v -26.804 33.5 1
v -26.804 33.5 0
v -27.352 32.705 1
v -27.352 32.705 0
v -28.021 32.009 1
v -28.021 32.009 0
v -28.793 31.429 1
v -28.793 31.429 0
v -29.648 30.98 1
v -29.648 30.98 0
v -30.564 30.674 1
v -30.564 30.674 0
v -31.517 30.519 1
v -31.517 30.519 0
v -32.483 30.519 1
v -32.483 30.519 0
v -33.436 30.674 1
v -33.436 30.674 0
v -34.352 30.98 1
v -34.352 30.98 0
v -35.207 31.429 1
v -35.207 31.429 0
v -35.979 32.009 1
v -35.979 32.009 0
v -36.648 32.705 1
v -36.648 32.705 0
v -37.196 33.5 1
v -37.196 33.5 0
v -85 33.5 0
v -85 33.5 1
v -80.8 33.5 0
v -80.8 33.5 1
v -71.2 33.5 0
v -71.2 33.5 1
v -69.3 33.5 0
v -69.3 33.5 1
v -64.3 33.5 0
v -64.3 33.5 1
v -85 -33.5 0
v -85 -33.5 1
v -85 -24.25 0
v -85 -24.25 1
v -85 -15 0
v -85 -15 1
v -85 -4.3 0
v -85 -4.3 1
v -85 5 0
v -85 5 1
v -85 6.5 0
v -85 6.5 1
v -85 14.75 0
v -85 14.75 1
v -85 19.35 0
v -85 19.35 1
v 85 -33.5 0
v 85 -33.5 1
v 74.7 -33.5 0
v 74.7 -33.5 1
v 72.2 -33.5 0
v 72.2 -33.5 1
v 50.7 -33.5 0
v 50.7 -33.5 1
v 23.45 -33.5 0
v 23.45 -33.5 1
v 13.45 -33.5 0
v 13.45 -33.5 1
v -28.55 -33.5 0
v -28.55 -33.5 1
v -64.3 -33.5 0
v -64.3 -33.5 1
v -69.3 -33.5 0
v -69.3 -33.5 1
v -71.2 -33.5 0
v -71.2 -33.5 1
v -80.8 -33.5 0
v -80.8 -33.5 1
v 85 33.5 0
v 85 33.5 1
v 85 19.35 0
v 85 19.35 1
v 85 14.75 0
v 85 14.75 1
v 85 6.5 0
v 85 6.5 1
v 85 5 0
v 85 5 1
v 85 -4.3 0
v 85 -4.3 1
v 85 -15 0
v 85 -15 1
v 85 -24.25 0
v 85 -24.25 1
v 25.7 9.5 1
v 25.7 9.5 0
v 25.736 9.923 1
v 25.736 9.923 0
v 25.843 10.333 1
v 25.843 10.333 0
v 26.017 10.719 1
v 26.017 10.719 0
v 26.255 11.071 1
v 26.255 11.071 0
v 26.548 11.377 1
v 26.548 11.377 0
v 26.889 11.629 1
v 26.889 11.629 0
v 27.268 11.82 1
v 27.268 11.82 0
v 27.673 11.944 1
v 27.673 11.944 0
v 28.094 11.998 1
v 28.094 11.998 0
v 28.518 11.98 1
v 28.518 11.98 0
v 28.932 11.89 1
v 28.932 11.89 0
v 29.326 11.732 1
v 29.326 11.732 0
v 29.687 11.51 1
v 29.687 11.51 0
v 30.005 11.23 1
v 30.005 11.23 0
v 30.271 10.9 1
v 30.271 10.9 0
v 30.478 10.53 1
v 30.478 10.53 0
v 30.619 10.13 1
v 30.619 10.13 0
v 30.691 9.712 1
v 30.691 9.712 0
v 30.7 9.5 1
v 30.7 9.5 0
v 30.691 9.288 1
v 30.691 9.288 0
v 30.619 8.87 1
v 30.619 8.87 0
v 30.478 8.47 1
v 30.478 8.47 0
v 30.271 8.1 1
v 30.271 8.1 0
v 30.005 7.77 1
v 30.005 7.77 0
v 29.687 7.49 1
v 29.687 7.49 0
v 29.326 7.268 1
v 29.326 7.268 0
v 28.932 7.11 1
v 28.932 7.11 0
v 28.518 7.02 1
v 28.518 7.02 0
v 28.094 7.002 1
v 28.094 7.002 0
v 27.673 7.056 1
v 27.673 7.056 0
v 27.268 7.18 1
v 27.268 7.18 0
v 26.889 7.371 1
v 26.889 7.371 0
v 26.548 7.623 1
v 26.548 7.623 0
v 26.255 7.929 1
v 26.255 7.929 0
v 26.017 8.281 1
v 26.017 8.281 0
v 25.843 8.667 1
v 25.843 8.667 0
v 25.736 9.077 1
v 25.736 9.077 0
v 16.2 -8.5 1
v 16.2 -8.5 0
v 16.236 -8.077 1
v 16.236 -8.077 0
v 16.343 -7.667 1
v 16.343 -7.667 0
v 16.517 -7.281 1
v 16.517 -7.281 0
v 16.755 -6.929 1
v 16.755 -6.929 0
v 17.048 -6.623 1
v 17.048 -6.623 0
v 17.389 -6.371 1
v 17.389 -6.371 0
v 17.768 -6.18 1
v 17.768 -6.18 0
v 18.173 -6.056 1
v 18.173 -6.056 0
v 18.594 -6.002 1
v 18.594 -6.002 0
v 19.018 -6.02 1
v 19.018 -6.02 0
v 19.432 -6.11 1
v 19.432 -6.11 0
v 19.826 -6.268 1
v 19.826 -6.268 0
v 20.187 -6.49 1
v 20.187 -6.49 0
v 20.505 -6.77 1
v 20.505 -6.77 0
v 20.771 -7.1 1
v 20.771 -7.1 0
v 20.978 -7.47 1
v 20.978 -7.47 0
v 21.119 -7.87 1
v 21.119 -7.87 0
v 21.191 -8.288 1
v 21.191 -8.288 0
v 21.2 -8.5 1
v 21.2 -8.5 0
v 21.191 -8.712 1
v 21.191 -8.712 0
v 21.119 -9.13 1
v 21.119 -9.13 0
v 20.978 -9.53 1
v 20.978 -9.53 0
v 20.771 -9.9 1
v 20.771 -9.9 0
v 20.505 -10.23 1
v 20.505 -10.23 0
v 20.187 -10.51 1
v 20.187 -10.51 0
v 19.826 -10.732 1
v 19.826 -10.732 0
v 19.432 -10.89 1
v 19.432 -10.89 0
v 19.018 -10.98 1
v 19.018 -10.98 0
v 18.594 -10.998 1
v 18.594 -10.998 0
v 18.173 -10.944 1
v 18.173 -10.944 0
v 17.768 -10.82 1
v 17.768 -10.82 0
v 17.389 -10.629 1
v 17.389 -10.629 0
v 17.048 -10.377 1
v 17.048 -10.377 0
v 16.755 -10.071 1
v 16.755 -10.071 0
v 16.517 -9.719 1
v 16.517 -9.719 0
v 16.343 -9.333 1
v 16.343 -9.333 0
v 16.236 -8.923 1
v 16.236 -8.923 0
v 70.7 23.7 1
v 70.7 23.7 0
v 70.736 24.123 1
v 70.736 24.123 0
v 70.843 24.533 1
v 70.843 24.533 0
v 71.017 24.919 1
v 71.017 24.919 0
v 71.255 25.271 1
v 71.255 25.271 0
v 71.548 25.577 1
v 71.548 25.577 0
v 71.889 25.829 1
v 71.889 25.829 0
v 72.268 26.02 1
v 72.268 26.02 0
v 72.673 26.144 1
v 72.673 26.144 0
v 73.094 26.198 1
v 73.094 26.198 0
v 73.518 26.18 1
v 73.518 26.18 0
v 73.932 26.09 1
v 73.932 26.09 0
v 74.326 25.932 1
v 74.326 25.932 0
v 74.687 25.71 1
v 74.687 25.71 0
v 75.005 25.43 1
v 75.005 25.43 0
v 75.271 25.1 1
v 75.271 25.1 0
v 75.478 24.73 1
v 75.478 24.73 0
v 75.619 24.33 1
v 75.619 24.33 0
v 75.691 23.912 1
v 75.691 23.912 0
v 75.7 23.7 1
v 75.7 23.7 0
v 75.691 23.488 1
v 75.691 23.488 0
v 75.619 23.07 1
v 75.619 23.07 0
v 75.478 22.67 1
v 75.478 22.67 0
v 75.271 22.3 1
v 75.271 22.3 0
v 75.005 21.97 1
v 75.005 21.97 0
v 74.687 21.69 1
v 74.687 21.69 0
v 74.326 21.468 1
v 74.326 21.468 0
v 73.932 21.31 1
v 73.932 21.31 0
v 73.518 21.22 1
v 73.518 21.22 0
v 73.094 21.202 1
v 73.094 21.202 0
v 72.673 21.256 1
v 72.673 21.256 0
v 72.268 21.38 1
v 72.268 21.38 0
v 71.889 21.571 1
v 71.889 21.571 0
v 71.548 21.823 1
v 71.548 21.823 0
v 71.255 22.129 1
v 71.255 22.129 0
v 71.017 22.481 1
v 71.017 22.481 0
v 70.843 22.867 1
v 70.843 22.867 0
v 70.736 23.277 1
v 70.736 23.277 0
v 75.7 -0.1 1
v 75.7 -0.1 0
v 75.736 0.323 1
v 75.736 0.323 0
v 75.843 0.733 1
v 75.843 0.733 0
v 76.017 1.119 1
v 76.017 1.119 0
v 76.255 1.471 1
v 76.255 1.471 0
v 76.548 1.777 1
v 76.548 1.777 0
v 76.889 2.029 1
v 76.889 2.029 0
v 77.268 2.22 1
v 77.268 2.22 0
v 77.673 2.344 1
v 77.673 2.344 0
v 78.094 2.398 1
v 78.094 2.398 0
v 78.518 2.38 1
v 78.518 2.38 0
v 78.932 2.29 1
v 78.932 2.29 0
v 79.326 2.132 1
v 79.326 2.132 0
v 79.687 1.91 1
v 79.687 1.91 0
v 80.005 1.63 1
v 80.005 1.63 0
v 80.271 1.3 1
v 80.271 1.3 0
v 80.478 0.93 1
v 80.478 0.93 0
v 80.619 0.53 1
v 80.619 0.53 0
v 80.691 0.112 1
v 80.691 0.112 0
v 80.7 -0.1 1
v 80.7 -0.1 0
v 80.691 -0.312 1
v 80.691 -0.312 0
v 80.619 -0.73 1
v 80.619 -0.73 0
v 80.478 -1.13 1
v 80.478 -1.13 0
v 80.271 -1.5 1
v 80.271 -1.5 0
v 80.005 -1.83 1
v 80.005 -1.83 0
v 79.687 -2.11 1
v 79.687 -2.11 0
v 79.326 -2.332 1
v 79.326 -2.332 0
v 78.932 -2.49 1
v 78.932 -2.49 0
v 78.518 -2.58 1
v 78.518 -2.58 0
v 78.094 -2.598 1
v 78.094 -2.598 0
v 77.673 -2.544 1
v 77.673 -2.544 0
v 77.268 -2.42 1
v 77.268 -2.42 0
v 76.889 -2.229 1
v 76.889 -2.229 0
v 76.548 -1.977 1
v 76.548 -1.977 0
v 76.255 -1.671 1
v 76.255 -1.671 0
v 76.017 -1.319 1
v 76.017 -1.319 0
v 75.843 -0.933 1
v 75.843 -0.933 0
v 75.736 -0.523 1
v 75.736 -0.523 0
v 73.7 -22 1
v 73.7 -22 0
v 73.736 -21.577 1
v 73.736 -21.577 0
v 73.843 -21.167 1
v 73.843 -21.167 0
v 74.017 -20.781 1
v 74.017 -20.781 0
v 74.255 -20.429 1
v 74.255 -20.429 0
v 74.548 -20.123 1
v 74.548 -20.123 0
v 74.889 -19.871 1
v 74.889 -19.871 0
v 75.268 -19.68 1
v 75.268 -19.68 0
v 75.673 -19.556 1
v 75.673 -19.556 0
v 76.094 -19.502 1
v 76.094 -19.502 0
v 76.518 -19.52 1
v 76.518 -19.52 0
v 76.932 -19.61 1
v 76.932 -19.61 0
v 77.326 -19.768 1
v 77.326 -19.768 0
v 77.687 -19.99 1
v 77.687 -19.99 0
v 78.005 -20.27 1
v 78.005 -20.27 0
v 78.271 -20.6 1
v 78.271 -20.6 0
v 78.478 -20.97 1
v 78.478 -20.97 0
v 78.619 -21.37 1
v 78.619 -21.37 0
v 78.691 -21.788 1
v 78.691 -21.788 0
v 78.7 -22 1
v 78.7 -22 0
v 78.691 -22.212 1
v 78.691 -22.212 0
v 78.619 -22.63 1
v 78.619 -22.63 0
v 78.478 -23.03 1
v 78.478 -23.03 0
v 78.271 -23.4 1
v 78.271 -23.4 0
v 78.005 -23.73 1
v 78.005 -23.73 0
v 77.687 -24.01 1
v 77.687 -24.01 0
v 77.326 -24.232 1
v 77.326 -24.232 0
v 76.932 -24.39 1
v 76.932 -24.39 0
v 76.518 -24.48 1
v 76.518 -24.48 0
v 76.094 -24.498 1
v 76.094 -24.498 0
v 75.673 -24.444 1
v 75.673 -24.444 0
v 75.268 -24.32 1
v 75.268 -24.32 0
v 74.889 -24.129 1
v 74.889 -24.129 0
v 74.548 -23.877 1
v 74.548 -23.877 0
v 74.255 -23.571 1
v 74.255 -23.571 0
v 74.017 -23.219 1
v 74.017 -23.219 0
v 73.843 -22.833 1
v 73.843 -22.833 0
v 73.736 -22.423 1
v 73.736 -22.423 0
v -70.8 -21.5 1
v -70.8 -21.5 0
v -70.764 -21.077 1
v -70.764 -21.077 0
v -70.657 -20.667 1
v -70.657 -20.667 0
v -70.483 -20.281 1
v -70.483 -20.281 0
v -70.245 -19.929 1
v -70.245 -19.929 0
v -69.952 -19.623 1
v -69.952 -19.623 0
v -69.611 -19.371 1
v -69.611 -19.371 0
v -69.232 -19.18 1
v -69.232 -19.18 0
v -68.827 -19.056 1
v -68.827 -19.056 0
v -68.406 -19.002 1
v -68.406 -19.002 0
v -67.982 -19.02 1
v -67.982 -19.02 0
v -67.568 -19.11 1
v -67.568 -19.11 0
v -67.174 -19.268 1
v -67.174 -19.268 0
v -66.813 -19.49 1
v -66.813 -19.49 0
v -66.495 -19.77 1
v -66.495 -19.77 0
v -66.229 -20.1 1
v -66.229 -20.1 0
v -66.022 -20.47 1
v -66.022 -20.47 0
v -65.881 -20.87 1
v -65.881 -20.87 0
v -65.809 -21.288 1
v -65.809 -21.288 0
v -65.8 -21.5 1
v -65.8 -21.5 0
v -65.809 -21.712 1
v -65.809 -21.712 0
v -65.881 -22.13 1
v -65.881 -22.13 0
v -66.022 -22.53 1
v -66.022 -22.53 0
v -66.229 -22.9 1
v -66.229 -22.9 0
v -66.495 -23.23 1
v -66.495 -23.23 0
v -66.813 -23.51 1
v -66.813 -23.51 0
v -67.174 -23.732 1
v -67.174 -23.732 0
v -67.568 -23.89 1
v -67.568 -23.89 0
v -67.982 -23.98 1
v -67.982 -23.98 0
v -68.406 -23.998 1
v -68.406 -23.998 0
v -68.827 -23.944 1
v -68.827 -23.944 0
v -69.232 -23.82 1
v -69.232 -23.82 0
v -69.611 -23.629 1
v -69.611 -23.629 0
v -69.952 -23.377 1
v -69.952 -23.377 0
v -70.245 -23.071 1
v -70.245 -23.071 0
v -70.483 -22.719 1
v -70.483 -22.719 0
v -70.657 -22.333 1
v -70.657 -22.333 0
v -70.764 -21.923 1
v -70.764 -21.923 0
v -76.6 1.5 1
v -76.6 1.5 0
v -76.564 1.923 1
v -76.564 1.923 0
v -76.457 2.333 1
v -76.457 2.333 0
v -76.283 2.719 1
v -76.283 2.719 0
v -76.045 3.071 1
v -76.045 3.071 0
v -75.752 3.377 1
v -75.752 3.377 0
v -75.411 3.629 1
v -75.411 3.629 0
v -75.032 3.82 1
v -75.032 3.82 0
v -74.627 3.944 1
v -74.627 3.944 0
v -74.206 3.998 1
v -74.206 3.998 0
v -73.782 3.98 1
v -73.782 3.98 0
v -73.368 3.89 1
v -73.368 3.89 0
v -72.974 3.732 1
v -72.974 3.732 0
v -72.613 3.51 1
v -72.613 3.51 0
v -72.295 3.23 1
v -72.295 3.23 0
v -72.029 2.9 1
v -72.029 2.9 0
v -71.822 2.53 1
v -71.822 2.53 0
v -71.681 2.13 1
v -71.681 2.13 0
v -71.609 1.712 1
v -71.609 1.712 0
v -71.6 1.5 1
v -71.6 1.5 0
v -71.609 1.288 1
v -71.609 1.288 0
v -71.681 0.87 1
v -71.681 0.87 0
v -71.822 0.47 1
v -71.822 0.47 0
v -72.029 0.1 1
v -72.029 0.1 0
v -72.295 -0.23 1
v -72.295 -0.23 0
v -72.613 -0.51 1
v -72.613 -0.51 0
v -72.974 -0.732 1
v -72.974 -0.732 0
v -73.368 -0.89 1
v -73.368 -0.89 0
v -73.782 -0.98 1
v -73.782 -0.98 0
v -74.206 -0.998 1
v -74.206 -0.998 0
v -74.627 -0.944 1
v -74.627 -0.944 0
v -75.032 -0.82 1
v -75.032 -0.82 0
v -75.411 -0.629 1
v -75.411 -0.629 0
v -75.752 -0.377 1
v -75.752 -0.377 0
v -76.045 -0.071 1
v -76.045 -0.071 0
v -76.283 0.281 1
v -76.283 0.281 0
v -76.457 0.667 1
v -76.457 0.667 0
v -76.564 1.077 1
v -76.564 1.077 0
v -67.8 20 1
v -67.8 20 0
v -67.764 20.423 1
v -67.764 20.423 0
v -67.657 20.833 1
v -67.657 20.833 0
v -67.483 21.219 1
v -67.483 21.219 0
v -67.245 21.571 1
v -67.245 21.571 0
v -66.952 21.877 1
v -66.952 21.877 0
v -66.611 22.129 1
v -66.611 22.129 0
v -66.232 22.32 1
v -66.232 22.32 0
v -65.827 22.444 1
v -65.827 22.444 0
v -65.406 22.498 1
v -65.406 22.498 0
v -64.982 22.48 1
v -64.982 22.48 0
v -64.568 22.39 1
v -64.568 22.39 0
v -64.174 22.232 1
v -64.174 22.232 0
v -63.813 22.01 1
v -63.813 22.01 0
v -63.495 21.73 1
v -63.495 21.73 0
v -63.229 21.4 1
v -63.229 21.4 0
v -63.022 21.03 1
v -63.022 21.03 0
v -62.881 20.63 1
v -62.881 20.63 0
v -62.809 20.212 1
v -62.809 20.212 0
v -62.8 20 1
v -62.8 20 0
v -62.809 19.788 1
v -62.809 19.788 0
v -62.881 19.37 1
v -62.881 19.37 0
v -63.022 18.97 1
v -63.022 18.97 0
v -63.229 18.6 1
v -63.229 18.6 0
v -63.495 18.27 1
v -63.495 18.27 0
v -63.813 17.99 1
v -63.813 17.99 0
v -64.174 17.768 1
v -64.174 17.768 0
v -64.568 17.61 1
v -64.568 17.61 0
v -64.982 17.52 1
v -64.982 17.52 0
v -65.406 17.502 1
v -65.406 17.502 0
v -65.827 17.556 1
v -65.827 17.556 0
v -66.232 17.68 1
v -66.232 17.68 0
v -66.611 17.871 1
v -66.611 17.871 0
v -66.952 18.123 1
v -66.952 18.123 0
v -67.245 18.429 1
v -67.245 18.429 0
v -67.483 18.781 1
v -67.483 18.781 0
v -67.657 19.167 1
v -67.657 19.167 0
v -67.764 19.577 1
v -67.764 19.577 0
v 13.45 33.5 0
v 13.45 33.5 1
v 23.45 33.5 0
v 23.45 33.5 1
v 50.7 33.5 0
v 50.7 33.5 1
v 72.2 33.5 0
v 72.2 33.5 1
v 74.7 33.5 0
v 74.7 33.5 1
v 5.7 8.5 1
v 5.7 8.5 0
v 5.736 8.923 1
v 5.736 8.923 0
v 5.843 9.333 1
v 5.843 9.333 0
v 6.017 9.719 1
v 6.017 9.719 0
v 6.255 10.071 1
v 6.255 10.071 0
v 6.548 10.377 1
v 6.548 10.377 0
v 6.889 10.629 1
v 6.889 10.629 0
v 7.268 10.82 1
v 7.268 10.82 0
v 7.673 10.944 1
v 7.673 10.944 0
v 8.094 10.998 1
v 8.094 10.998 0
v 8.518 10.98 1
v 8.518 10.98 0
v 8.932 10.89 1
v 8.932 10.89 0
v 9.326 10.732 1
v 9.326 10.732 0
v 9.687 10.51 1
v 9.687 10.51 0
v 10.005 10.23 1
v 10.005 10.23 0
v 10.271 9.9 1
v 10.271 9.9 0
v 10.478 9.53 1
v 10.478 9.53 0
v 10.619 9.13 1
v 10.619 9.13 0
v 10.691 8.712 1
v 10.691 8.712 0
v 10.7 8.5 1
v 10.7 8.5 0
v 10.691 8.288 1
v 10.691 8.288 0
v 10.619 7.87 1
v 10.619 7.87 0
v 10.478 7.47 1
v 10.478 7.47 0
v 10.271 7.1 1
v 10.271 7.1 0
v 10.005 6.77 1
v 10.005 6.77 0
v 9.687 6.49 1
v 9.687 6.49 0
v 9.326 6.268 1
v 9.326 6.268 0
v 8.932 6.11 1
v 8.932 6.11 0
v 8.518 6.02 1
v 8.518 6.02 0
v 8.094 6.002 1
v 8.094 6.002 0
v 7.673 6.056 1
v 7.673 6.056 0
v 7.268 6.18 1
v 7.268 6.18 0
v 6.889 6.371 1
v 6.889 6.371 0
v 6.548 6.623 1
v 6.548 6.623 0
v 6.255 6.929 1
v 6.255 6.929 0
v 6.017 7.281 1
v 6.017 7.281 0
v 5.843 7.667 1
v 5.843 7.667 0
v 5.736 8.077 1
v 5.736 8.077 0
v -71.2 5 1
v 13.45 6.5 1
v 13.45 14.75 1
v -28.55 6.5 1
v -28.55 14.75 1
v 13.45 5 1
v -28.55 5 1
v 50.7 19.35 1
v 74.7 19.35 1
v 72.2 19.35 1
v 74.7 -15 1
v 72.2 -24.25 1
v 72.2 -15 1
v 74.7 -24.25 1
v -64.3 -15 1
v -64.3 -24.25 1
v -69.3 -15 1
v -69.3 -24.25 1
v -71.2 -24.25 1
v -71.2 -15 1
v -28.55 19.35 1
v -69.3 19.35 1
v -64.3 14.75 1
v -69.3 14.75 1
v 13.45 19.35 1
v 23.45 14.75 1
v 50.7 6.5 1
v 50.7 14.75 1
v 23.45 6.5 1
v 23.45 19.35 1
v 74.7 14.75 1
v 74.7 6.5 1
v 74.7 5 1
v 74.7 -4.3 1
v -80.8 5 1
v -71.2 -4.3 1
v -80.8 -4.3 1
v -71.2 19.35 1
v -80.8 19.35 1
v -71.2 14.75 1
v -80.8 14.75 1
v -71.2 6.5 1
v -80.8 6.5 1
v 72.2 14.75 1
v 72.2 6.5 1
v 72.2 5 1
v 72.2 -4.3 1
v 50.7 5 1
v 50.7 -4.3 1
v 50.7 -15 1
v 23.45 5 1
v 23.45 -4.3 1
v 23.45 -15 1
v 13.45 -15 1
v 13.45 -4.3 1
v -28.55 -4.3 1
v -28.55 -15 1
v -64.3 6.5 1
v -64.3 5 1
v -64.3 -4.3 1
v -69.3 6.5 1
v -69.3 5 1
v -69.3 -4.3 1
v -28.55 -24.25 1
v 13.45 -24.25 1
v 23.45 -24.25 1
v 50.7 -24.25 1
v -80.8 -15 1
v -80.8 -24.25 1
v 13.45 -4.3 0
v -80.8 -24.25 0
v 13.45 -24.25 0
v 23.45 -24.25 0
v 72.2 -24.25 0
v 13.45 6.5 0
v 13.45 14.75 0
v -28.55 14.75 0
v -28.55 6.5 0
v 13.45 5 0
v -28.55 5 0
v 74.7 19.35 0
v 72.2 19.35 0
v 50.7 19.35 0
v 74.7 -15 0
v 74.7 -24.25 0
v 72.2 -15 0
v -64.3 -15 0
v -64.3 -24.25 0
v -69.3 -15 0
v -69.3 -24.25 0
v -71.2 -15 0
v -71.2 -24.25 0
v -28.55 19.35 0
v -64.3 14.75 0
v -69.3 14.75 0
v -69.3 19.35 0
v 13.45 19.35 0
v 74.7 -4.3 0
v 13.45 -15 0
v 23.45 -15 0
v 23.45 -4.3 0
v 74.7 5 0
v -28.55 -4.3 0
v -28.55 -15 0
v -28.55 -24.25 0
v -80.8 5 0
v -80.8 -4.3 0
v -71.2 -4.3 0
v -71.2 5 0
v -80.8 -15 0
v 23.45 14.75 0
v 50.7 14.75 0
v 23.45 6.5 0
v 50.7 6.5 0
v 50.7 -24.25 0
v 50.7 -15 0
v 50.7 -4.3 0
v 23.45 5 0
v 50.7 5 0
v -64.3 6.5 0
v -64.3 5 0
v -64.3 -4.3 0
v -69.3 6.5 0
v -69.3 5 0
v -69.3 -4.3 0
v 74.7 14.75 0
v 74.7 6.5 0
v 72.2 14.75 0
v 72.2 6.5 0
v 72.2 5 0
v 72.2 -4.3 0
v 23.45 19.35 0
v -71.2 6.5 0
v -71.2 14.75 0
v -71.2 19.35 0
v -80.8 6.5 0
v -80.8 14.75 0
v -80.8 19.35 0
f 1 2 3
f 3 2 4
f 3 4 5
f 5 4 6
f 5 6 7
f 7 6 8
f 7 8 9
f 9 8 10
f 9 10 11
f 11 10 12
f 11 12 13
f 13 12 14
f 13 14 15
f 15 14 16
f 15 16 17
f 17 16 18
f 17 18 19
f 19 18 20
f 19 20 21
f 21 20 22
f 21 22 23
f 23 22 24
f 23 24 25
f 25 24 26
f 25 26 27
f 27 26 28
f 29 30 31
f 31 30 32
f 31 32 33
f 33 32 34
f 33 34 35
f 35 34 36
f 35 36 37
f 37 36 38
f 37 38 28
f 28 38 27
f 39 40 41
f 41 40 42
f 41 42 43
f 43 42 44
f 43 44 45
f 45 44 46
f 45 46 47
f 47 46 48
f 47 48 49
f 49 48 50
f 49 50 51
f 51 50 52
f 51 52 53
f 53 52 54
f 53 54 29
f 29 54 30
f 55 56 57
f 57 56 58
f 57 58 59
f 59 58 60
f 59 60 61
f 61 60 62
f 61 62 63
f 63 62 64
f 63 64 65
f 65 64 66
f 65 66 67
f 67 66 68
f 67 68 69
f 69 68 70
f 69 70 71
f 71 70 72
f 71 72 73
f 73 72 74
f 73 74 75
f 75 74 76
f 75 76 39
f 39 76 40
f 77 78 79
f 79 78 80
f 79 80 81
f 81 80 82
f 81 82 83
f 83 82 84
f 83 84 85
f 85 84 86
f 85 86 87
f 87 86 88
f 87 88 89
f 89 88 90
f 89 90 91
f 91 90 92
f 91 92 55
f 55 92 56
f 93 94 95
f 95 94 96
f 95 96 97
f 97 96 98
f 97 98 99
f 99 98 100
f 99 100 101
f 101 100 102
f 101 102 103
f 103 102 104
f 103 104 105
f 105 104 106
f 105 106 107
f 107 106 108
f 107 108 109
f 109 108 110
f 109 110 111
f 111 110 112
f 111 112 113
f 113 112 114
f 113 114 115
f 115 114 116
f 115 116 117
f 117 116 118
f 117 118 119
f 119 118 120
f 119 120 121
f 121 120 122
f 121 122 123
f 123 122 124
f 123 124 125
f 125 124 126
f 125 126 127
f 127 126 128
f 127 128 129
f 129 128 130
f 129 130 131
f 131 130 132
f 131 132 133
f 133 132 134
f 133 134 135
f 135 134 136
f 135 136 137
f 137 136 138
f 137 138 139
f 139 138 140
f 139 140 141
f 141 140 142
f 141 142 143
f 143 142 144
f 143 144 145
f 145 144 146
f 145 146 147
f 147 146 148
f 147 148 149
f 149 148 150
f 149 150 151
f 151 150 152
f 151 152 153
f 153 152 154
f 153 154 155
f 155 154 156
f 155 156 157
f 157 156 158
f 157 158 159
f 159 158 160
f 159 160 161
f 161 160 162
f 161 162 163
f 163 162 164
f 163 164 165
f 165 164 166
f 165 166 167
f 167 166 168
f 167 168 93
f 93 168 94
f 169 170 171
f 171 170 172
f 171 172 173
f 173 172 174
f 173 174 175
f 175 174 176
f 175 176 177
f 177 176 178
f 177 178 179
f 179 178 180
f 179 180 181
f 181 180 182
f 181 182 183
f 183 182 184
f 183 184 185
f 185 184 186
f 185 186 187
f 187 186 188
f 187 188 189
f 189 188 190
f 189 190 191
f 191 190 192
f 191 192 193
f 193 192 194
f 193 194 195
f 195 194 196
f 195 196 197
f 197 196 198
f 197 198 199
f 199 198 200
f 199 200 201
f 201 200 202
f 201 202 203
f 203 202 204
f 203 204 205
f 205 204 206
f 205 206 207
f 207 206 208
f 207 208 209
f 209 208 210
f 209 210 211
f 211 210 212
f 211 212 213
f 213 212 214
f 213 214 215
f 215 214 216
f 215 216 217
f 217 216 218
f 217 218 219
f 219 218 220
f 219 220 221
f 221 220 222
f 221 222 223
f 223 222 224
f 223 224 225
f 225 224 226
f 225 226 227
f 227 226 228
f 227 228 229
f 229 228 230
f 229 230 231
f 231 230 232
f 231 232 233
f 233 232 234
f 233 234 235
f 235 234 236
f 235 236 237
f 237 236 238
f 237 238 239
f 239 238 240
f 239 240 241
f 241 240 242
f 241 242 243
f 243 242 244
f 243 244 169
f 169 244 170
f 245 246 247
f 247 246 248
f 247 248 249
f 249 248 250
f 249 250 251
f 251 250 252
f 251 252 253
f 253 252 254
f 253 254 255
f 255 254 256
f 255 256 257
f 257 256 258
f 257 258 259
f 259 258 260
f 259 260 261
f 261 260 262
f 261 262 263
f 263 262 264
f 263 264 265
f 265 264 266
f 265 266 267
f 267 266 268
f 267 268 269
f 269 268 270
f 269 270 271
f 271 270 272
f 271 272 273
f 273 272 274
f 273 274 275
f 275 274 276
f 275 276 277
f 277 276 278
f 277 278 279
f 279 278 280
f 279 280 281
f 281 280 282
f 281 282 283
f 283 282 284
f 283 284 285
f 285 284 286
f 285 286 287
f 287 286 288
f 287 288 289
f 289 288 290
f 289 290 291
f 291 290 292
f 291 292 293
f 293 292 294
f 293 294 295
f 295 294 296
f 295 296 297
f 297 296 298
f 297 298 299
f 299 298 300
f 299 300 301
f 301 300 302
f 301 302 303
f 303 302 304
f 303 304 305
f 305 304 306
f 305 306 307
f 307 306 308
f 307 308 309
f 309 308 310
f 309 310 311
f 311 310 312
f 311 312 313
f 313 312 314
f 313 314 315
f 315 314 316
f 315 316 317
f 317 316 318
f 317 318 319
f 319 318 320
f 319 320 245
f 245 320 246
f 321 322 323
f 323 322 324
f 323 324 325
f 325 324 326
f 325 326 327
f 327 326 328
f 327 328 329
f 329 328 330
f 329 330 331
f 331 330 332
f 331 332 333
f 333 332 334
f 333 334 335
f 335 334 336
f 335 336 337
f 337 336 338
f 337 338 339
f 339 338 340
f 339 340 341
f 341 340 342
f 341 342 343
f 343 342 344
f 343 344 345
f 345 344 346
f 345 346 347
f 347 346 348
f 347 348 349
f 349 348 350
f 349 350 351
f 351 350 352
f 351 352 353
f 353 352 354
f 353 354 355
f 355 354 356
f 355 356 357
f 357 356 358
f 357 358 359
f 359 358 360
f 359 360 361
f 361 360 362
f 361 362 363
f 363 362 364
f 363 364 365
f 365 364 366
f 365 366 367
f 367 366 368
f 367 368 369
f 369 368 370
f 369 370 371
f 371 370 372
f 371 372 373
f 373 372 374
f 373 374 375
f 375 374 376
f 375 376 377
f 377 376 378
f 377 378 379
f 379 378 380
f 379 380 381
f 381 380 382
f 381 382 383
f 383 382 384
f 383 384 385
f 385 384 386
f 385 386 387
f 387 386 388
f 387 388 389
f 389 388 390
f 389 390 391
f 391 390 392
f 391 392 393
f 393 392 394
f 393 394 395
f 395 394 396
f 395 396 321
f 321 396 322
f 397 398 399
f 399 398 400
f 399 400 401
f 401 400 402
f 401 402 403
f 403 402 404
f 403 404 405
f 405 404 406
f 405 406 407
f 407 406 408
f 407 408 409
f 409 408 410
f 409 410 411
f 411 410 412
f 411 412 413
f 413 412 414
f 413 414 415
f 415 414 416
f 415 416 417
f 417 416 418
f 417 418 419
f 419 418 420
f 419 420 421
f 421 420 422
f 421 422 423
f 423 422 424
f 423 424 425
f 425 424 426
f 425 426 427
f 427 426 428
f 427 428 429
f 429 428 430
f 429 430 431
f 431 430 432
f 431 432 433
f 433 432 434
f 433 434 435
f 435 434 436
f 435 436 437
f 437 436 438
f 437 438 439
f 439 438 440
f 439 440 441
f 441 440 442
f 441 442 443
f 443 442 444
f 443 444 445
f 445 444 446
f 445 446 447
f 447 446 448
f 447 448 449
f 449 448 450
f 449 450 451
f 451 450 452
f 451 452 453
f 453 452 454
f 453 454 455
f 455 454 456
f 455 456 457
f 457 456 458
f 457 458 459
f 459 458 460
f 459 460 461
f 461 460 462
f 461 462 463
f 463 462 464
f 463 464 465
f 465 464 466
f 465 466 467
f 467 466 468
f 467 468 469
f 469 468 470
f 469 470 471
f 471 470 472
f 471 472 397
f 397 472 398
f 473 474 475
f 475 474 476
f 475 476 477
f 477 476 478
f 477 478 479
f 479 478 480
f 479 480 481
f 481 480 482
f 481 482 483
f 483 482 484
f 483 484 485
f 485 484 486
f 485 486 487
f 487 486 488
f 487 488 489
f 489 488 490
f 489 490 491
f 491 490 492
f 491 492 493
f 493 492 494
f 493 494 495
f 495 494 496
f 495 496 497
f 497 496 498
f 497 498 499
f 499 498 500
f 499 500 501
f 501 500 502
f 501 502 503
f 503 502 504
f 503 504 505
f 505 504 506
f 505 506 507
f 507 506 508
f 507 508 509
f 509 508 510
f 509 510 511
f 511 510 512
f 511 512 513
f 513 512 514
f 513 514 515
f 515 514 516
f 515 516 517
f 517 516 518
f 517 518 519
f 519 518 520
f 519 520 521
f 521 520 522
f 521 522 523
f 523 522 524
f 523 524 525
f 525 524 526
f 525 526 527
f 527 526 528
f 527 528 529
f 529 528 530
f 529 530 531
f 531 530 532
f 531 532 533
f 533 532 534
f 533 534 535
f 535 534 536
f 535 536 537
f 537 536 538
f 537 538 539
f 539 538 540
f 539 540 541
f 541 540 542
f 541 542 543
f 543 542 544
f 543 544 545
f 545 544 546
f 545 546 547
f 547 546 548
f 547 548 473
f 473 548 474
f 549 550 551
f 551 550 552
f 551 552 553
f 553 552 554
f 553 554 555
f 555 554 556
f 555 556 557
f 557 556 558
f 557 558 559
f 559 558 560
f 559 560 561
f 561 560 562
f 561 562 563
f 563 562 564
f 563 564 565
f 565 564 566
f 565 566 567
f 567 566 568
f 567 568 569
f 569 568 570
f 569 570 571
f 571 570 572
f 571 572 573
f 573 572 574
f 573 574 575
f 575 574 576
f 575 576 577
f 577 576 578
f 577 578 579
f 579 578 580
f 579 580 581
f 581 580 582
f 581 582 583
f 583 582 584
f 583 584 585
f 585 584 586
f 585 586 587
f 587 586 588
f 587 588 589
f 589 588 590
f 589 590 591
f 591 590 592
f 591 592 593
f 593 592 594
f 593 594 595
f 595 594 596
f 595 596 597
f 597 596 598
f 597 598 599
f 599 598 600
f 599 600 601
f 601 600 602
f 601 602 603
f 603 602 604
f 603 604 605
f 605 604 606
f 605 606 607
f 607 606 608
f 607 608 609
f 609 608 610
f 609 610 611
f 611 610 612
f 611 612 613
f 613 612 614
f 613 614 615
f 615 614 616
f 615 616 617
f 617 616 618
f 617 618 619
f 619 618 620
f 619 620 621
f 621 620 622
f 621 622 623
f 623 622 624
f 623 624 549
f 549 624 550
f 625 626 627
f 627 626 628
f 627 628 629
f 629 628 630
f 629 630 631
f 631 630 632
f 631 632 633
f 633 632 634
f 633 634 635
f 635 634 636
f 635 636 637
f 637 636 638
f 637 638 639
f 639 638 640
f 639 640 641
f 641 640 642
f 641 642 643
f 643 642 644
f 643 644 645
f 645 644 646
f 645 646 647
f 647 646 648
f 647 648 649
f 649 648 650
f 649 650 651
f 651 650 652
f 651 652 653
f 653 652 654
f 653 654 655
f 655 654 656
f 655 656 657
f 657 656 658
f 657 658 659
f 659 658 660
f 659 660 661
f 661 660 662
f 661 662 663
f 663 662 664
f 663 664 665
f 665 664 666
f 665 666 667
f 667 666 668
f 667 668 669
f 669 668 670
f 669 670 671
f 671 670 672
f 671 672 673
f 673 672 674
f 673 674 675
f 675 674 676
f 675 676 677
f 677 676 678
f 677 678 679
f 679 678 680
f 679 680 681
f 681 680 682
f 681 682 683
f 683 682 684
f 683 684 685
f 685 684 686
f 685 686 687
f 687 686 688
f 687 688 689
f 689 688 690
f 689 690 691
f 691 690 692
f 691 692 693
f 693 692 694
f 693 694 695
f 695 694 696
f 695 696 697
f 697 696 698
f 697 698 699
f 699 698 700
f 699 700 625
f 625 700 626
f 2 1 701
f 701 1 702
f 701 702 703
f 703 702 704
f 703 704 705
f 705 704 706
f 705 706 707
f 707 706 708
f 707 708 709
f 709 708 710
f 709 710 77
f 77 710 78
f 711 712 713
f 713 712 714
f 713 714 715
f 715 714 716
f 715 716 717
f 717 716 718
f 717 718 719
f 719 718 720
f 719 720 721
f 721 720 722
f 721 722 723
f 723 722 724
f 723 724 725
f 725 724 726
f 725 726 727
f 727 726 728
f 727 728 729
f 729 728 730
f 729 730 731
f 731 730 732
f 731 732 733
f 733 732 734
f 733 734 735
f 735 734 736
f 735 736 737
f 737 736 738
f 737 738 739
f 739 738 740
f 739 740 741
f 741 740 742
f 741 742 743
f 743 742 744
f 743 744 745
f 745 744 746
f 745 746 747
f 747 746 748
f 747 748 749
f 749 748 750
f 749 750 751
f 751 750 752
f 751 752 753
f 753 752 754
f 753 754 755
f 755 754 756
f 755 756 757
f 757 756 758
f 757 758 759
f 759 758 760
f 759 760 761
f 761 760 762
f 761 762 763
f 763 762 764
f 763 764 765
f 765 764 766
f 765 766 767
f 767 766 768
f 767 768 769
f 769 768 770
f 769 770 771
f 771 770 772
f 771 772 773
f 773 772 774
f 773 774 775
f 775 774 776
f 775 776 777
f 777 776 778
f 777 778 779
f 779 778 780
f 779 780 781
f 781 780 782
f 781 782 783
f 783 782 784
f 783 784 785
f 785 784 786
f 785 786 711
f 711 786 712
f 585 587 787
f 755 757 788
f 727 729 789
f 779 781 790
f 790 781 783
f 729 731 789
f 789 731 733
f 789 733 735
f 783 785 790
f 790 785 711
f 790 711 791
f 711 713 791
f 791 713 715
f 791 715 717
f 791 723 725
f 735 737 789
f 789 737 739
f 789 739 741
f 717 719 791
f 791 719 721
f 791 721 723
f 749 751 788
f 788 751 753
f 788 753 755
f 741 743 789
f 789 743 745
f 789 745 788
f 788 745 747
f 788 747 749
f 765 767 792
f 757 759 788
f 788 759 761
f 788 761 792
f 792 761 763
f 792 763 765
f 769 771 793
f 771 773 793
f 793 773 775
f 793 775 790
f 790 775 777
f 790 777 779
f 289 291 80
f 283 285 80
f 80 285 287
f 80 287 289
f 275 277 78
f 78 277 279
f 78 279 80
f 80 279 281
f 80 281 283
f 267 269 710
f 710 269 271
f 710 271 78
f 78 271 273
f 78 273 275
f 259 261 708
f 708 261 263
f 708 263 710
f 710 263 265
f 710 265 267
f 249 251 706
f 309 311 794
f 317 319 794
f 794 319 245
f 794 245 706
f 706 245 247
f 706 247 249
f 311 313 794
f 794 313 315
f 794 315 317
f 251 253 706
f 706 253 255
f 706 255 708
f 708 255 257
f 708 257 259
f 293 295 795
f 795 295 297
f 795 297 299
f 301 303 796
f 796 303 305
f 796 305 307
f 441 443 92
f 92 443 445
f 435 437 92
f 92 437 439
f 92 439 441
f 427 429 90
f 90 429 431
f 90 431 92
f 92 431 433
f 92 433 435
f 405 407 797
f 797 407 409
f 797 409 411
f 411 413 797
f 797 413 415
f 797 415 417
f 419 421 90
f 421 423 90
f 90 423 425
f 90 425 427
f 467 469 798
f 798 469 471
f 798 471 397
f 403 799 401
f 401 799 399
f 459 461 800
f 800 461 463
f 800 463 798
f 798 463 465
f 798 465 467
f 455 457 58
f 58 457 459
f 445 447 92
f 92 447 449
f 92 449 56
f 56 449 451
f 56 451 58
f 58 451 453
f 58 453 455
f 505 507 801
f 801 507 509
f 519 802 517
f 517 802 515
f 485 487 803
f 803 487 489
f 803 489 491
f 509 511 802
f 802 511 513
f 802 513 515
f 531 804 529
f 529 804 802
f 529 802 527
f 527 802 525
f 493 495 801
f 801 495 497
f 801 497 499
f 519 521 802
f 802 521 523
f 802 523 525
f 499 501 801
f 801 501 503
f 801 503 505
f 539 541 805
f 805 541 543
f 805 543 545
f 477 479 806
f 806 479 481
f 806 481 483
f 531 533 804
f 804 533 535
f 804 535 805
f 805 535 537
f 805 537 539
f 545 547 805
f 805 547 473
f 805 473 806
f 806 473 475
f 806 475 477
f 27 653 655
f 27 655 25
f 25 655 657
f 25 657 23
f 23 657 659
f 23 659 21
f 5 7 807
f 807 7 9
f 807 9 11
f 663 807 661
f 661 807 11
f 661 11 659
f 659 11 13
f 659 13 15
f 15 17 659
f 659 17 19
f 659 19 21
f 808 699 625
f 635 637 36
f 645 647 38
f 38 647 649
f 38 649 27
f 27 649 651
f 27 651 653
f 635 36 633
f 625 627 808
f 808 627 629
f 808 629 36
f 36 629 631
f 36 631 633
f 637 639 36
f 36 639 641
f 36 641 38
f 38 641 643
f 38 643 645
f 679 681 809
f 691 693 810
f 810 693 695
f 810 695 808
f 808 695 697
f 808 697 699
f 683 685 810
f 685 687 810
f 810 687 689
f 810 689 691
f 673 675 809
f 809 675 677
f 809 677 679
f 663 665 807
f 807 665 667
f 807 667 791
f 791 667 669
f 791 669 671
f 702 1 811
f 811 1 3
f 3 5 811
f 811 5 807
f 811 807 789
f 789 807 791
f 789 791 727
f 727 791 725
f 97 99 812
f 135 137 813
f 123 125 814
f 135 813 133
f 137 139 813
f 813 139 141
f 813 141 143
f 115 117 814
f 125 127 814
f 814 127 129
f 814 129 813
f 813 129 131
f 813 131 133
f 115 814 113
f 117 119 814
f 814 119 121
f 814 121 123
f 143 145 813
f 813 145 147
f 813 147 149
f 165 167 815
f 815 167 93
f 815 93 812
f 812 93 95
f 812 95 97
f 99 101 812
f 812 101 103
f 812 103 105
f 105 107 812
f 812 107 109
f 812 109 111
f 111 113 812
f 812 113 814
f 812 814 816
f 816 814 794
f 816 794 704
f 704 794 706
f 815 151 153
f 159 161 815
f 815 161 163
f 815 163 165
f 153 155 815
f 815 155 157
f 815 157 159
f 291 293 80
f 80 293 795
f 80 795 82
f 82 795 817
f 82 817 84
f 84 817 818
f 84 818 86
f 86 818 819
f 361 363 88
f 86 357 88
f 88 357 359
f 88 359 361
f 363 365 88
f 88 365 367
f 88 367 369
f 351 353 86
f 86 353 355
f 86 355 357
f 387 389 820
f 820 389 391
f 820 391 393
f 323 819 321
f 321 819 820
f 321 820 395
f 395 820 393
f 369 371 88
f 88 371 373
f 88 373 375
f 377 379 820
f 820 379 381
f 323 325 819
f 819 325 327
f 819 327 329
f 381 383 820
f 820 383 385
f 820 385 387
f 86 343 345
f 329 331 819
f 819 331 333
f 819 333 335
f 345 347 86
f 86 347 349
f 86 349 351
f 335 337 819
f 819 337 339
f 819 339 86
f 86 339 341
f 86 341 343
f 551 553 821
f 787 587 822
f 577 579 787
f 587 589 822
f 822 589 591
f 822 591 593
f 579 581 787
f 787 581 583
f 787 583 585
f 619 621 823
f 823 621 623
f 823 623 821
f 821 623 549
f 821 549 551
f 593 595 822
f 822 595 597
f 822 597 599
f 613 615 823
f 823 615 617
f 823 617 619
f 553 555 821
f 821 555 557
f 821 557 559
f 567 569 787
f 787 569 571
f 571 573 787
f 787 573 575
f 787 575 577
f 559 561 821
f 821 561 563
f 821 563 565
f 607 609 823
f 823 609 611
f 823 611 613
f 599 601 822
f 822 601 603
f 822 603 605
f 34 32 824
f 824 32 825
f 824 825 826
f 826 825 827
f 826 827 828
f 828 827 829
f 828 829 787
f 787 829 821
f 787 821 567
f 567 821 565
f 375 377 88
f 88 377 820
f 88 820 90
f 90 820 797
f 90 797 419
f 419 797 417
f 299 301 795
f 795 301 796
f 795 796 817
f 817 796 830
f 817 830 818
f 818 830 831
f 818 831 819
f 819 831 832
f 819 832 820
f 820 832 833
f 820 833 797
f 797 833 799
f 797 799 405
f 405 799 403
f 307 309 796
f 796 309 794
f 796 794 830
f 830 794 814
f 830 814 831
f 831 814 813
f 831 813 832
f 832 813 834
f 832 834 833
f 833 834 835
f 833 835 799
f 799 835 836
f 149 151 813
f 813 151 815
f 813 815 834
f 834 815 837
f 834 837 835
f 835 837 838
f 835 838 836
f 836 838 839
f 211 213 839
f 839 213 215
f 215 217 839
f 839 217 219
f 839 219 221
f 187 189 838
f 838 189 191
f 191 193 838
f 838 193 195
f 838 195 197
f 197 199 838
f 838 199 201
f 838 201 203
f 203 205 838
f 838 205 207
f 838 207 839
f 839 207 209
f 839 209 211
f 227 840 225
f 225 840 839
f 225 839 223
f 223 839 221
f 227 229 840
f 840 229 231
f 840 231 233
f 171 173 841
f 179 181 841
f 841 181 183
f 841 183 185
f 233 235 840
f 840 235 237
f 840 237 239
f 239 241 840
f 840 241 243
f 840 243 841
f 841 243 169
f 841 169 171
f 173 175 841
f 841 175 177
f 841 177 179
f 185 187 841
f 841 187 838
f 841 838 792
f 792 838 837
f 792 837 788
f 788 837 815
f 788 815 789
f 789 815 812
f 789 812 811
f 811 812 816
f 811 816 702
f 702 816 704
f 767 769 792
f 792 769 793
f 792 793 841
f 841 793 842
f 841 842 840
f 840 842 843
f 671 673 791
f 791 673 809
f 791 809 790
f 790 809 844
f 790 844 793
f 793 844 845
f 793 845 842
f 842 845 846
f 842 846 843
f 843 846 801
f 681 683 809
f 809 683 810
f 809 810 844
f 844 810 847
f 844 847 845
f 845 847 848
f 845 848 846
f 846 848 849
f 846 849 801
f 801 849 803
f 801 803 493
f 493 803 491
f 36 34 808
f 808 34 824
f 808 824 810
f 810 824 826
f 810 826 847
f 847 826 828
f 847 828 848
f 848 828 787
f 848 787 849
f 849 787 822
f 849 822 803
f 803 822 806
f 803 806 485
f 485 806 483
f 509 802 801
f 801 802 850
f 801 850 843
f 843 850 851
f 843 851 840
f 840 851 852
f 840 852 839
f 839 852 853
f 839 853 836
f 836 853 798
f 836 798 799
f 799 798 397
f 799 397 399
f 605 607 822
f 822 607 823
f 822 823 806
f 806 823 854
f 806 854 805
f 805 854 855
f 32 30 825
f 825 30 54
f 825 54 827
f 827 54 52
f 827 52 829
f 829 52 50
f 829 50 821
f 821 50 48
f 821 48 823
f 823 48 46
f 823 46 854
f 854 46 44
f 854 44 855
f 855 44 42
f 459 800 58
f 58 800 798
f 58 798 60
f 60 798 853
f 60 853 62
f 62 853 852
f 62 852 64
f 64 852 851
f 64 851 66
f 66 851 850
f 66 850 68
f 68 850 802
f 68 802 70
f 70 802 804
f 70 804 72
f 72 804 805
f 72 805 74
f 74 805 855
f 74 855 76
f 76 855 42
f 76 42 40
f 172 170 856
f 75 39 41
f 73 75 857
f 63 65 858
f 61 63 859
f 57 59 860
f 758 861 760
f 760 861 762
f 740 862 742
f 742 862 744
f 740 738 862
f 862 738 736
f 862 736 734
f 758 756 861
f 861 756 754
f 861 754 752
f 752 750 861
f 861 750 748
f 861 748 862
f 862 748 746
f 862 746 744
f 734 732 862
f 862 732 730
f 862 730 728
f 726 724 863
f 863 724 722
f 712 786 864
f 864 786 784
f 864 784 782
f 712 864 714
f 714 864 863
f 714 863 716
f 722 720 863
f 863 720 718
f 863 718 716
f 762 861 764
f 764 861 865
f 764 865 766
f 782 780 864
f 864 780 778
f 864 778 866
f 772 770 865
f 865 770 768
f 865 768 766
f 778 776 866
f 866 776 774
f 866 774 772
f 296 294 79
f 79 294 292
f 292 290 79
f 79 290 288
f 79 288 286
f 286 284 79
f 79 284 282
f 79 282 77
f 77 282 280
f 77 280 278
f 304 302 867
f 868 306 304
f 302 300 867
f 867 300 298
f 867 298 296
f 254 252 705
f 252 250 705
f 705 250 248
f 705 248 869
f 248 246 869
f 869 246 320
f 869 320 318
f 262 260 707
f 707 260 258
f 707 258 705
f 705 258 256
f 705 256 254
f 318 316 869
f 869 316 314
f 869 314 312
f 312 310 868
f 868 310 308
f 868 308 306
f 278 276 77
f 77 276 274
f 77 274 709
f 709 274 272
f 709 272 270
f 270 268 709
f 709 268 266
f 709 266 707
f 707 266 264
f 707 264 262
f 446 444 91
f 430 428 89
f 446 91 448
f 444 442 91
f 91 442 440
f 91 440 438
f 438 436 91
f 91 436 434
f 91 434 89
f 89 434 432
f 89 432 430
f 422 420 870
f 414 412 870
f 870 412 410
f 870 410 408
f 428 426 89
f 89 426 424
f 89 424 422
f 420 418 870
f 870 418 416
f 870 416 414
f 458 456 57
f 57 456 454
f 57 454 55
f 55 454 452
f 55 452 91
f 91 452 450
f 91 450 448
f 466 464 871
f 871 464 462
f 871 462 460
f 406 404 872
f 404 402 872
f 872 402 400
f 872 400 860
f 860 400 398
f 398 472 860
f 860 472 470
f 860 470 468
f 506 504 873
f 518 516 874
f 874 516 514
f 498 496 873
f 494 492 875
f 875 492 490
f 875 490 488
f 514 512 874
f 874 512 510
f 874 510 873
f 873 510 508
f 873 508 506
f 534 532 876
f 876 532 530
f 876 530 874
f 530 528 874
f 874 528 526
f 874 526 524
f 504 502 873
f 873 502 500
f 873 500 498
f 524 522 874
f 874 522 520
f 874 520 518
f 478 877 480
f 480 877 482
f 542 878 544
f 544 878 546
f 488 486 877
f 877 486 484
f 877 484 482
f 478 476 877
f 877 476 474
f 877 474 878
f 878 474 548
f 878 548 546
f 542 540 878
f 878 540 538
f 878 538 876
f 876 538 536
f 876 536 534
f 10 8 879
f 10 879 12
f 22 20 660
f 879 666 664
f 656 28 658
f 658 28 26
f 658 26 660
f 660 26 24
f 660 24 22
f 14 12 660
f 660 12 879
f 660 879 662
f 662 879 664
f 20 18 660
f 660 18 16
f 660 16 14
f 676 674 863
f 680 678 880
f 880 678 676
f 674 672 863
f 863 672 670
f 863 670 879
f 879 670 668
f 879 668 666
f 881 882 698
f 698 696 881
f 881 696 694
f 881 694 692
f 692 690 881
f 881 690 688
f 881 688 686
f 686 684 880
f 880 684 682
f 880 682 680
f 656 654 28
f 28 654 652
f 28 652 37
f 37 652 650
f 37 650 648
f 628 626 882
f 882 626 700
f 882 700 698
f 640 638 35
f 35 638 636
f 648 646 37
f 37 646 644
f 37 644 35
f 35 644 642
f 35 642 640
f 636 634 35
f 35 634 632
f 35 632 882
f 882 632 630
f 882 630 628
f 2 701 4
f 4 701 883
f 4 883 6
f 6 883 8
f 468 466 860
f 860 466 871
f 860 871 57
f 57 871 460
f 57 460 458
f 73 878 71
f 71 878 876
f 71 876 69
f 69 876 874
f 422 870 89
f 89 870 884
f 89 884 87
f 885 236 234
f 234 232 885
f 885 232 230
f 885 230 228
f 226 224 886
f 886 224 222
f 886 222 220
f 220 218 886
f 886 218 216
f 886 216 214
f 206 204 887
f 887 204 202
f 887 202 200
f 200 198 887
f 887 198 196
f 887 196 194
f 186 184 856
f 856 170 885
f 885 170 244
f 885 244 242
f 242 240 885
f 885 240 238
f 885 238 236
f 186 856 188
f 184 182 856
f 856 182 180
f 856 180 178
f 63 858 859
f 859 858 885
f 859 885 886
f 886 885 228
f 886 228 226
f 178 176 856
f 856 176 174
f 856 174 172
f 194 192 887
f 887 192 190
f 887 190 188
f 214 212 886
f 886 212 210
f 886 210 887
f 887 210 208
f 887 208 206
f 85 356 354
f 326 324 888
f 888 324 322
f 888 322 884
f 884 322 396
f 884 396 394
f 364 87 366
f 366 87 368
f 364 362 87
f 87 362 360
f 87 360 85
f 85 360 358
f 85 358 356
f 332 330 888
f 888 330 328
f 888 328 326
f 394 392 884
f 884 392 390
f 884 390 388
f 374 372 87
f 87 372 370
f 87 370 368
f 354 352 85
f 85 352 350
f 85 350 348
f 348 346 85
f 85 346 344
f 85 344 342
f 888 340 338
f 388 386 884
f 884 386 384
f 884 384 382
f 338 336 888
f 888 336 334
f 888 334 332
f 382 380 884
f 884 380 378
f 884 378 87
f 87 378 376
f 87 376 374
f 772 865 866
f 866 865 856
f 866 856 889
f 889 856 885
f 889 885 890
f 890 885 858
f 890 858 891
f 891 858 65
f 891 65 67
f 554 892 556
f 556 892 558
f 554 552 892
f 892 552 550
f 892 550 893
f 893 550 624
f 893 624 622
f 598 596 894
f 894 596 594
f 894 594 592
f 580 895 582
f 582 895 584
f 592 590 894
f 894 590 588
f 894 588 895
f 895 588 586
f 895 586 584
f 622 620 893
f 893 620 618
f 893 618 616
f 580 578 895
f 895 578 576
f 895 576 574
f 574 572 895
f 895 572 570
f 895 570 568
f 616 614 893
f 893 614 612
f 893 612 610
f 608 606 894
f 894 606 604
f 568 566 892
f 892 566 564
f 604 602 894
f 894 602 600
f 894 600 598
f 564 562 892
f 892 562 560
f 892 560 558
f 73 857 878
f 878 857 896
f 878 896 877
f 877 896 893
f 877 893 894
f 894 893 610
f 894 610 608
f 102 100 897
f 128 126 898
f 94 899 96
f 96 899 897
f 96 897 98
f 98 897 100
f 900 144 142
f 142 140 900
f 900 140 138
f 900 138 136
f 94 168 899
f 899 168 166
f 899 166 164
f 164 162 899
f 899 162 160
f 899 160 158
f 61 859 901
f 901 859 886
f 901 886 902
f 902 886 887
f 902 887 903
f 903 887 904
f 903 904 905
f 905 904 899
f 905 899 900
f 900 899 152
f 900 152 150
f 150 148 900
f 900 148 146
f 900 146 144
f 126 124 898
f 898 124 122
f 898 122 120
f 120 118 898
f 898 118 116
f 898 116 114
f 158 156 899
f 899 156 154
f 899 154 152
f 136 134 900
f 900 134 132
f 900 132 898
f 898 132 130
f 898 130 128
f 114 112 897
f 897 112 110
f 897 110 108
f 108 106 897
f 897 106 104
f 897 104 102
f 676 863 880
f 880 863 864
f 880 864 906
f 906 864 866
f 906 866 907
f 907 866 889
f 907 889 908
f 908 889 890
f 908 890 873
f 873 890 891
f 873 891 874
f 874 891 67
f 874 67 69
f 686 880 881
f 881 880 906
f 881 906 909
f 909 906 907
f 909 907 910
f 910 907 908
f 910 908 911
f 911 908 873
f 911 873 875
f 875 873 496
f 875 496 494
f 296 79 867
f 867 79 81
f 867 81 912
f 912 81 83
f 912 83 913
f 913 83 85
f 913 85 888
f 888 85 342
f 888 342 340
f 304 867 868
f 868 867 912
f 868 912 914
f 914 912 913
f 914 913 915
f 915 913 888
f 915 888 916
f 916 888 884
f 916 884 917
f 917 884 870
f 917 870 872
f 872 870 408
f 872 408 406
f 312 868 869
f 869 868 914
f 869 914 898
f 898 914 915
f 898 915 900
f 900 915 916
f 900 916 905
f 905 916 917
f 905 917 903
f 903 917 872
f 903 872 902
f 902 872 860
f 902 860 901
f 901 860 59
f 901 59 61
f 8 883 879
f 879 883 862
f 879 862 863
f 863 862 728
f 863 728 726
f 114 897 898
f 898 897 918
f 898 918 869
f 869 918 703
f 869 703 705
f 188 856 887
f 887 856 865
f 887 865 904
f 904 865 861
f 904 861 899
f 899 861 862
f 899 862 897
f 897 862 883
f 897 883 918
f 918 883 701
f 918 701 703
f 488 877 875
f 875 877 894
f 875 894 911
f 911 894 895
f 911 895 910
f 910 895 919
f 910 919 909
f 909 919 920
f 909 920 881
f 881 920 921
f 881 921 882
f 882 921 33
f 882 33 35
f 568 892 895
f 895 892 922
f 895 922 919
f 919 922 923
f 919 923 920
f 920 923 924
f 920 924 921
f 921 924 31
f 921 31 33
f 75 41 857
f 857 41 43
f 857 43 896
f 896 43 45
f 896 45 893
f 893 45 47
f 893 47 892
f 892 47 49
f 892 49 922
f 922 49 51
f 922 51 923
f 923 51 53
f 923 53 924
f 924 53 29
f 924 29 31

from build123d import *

# Parameters (mm, degrees)
SKETCH1_R           = 2.5
BOSS_EXTRUDE1_DEPTH = 1


with BuildPart() as part:
    # Sketch1 → Boss-Extrude1 (new body)
    with BuildSketch(Plane.XY):
        with BuildLine():
            ThreePointArc((-26.803847577, 33.5), (-29, 31.303847577), (-32, 30.5))
            ThreePointArc((-32, 30.5), (-35, 31.303847577), (-37.196152423, 33.5))
            Line((-37.196152423, 33.5), (-85, 33.5))
            Line((-85, 33.5), (-85, -33.5))
            Line((-85, -33.5), (85, -33.5))
            Line((85, -33.5), (85, 33.5))
            Line((85, 33.5), (-26.803847577, 33.5))
        make_face()
        with Locations((-68.3, -21.5)):
            Circle(SKETCH1_R, mode=Mode.SUBTRACT)
        with Locations((-74.1, 1.5)):
            Circle(SKETCH1_R, mode=Mode.SUBTRACT)
        with Locations((76.2, -22)):
            Circle(SKETCH1_R, mode=Mode.SUBTRACT)
        with Locations((18.7, -8.5)):
            Circle(SKETCH1_R, mode=Mode.SUBTRACT)
        with Locations((78.2, -0.1)):
            Circle(SKETCH1_R, mode=Mode.SUBTRACT)
        with Locations((-65.3, 20)):
            Circle(SKETCH1_R, mode=Mode.SUBTRACT)
        with Locations((8.2, 8.5)):
            Circle(SKETCH1_R, mode=Mode.SUBTRACT)
        with Locations((28.2, 9.5)):
            Circle(SKETCH1_R, mode=Mode.SUBTRACT)
        with Locations((73.2, 23.7)):
            Circle(SKETCH1_R, mode=Mode.SUBTRACT)
    extrude(amount=BOSS_EXTRUDE1_DEPTH)


solid = part.part
